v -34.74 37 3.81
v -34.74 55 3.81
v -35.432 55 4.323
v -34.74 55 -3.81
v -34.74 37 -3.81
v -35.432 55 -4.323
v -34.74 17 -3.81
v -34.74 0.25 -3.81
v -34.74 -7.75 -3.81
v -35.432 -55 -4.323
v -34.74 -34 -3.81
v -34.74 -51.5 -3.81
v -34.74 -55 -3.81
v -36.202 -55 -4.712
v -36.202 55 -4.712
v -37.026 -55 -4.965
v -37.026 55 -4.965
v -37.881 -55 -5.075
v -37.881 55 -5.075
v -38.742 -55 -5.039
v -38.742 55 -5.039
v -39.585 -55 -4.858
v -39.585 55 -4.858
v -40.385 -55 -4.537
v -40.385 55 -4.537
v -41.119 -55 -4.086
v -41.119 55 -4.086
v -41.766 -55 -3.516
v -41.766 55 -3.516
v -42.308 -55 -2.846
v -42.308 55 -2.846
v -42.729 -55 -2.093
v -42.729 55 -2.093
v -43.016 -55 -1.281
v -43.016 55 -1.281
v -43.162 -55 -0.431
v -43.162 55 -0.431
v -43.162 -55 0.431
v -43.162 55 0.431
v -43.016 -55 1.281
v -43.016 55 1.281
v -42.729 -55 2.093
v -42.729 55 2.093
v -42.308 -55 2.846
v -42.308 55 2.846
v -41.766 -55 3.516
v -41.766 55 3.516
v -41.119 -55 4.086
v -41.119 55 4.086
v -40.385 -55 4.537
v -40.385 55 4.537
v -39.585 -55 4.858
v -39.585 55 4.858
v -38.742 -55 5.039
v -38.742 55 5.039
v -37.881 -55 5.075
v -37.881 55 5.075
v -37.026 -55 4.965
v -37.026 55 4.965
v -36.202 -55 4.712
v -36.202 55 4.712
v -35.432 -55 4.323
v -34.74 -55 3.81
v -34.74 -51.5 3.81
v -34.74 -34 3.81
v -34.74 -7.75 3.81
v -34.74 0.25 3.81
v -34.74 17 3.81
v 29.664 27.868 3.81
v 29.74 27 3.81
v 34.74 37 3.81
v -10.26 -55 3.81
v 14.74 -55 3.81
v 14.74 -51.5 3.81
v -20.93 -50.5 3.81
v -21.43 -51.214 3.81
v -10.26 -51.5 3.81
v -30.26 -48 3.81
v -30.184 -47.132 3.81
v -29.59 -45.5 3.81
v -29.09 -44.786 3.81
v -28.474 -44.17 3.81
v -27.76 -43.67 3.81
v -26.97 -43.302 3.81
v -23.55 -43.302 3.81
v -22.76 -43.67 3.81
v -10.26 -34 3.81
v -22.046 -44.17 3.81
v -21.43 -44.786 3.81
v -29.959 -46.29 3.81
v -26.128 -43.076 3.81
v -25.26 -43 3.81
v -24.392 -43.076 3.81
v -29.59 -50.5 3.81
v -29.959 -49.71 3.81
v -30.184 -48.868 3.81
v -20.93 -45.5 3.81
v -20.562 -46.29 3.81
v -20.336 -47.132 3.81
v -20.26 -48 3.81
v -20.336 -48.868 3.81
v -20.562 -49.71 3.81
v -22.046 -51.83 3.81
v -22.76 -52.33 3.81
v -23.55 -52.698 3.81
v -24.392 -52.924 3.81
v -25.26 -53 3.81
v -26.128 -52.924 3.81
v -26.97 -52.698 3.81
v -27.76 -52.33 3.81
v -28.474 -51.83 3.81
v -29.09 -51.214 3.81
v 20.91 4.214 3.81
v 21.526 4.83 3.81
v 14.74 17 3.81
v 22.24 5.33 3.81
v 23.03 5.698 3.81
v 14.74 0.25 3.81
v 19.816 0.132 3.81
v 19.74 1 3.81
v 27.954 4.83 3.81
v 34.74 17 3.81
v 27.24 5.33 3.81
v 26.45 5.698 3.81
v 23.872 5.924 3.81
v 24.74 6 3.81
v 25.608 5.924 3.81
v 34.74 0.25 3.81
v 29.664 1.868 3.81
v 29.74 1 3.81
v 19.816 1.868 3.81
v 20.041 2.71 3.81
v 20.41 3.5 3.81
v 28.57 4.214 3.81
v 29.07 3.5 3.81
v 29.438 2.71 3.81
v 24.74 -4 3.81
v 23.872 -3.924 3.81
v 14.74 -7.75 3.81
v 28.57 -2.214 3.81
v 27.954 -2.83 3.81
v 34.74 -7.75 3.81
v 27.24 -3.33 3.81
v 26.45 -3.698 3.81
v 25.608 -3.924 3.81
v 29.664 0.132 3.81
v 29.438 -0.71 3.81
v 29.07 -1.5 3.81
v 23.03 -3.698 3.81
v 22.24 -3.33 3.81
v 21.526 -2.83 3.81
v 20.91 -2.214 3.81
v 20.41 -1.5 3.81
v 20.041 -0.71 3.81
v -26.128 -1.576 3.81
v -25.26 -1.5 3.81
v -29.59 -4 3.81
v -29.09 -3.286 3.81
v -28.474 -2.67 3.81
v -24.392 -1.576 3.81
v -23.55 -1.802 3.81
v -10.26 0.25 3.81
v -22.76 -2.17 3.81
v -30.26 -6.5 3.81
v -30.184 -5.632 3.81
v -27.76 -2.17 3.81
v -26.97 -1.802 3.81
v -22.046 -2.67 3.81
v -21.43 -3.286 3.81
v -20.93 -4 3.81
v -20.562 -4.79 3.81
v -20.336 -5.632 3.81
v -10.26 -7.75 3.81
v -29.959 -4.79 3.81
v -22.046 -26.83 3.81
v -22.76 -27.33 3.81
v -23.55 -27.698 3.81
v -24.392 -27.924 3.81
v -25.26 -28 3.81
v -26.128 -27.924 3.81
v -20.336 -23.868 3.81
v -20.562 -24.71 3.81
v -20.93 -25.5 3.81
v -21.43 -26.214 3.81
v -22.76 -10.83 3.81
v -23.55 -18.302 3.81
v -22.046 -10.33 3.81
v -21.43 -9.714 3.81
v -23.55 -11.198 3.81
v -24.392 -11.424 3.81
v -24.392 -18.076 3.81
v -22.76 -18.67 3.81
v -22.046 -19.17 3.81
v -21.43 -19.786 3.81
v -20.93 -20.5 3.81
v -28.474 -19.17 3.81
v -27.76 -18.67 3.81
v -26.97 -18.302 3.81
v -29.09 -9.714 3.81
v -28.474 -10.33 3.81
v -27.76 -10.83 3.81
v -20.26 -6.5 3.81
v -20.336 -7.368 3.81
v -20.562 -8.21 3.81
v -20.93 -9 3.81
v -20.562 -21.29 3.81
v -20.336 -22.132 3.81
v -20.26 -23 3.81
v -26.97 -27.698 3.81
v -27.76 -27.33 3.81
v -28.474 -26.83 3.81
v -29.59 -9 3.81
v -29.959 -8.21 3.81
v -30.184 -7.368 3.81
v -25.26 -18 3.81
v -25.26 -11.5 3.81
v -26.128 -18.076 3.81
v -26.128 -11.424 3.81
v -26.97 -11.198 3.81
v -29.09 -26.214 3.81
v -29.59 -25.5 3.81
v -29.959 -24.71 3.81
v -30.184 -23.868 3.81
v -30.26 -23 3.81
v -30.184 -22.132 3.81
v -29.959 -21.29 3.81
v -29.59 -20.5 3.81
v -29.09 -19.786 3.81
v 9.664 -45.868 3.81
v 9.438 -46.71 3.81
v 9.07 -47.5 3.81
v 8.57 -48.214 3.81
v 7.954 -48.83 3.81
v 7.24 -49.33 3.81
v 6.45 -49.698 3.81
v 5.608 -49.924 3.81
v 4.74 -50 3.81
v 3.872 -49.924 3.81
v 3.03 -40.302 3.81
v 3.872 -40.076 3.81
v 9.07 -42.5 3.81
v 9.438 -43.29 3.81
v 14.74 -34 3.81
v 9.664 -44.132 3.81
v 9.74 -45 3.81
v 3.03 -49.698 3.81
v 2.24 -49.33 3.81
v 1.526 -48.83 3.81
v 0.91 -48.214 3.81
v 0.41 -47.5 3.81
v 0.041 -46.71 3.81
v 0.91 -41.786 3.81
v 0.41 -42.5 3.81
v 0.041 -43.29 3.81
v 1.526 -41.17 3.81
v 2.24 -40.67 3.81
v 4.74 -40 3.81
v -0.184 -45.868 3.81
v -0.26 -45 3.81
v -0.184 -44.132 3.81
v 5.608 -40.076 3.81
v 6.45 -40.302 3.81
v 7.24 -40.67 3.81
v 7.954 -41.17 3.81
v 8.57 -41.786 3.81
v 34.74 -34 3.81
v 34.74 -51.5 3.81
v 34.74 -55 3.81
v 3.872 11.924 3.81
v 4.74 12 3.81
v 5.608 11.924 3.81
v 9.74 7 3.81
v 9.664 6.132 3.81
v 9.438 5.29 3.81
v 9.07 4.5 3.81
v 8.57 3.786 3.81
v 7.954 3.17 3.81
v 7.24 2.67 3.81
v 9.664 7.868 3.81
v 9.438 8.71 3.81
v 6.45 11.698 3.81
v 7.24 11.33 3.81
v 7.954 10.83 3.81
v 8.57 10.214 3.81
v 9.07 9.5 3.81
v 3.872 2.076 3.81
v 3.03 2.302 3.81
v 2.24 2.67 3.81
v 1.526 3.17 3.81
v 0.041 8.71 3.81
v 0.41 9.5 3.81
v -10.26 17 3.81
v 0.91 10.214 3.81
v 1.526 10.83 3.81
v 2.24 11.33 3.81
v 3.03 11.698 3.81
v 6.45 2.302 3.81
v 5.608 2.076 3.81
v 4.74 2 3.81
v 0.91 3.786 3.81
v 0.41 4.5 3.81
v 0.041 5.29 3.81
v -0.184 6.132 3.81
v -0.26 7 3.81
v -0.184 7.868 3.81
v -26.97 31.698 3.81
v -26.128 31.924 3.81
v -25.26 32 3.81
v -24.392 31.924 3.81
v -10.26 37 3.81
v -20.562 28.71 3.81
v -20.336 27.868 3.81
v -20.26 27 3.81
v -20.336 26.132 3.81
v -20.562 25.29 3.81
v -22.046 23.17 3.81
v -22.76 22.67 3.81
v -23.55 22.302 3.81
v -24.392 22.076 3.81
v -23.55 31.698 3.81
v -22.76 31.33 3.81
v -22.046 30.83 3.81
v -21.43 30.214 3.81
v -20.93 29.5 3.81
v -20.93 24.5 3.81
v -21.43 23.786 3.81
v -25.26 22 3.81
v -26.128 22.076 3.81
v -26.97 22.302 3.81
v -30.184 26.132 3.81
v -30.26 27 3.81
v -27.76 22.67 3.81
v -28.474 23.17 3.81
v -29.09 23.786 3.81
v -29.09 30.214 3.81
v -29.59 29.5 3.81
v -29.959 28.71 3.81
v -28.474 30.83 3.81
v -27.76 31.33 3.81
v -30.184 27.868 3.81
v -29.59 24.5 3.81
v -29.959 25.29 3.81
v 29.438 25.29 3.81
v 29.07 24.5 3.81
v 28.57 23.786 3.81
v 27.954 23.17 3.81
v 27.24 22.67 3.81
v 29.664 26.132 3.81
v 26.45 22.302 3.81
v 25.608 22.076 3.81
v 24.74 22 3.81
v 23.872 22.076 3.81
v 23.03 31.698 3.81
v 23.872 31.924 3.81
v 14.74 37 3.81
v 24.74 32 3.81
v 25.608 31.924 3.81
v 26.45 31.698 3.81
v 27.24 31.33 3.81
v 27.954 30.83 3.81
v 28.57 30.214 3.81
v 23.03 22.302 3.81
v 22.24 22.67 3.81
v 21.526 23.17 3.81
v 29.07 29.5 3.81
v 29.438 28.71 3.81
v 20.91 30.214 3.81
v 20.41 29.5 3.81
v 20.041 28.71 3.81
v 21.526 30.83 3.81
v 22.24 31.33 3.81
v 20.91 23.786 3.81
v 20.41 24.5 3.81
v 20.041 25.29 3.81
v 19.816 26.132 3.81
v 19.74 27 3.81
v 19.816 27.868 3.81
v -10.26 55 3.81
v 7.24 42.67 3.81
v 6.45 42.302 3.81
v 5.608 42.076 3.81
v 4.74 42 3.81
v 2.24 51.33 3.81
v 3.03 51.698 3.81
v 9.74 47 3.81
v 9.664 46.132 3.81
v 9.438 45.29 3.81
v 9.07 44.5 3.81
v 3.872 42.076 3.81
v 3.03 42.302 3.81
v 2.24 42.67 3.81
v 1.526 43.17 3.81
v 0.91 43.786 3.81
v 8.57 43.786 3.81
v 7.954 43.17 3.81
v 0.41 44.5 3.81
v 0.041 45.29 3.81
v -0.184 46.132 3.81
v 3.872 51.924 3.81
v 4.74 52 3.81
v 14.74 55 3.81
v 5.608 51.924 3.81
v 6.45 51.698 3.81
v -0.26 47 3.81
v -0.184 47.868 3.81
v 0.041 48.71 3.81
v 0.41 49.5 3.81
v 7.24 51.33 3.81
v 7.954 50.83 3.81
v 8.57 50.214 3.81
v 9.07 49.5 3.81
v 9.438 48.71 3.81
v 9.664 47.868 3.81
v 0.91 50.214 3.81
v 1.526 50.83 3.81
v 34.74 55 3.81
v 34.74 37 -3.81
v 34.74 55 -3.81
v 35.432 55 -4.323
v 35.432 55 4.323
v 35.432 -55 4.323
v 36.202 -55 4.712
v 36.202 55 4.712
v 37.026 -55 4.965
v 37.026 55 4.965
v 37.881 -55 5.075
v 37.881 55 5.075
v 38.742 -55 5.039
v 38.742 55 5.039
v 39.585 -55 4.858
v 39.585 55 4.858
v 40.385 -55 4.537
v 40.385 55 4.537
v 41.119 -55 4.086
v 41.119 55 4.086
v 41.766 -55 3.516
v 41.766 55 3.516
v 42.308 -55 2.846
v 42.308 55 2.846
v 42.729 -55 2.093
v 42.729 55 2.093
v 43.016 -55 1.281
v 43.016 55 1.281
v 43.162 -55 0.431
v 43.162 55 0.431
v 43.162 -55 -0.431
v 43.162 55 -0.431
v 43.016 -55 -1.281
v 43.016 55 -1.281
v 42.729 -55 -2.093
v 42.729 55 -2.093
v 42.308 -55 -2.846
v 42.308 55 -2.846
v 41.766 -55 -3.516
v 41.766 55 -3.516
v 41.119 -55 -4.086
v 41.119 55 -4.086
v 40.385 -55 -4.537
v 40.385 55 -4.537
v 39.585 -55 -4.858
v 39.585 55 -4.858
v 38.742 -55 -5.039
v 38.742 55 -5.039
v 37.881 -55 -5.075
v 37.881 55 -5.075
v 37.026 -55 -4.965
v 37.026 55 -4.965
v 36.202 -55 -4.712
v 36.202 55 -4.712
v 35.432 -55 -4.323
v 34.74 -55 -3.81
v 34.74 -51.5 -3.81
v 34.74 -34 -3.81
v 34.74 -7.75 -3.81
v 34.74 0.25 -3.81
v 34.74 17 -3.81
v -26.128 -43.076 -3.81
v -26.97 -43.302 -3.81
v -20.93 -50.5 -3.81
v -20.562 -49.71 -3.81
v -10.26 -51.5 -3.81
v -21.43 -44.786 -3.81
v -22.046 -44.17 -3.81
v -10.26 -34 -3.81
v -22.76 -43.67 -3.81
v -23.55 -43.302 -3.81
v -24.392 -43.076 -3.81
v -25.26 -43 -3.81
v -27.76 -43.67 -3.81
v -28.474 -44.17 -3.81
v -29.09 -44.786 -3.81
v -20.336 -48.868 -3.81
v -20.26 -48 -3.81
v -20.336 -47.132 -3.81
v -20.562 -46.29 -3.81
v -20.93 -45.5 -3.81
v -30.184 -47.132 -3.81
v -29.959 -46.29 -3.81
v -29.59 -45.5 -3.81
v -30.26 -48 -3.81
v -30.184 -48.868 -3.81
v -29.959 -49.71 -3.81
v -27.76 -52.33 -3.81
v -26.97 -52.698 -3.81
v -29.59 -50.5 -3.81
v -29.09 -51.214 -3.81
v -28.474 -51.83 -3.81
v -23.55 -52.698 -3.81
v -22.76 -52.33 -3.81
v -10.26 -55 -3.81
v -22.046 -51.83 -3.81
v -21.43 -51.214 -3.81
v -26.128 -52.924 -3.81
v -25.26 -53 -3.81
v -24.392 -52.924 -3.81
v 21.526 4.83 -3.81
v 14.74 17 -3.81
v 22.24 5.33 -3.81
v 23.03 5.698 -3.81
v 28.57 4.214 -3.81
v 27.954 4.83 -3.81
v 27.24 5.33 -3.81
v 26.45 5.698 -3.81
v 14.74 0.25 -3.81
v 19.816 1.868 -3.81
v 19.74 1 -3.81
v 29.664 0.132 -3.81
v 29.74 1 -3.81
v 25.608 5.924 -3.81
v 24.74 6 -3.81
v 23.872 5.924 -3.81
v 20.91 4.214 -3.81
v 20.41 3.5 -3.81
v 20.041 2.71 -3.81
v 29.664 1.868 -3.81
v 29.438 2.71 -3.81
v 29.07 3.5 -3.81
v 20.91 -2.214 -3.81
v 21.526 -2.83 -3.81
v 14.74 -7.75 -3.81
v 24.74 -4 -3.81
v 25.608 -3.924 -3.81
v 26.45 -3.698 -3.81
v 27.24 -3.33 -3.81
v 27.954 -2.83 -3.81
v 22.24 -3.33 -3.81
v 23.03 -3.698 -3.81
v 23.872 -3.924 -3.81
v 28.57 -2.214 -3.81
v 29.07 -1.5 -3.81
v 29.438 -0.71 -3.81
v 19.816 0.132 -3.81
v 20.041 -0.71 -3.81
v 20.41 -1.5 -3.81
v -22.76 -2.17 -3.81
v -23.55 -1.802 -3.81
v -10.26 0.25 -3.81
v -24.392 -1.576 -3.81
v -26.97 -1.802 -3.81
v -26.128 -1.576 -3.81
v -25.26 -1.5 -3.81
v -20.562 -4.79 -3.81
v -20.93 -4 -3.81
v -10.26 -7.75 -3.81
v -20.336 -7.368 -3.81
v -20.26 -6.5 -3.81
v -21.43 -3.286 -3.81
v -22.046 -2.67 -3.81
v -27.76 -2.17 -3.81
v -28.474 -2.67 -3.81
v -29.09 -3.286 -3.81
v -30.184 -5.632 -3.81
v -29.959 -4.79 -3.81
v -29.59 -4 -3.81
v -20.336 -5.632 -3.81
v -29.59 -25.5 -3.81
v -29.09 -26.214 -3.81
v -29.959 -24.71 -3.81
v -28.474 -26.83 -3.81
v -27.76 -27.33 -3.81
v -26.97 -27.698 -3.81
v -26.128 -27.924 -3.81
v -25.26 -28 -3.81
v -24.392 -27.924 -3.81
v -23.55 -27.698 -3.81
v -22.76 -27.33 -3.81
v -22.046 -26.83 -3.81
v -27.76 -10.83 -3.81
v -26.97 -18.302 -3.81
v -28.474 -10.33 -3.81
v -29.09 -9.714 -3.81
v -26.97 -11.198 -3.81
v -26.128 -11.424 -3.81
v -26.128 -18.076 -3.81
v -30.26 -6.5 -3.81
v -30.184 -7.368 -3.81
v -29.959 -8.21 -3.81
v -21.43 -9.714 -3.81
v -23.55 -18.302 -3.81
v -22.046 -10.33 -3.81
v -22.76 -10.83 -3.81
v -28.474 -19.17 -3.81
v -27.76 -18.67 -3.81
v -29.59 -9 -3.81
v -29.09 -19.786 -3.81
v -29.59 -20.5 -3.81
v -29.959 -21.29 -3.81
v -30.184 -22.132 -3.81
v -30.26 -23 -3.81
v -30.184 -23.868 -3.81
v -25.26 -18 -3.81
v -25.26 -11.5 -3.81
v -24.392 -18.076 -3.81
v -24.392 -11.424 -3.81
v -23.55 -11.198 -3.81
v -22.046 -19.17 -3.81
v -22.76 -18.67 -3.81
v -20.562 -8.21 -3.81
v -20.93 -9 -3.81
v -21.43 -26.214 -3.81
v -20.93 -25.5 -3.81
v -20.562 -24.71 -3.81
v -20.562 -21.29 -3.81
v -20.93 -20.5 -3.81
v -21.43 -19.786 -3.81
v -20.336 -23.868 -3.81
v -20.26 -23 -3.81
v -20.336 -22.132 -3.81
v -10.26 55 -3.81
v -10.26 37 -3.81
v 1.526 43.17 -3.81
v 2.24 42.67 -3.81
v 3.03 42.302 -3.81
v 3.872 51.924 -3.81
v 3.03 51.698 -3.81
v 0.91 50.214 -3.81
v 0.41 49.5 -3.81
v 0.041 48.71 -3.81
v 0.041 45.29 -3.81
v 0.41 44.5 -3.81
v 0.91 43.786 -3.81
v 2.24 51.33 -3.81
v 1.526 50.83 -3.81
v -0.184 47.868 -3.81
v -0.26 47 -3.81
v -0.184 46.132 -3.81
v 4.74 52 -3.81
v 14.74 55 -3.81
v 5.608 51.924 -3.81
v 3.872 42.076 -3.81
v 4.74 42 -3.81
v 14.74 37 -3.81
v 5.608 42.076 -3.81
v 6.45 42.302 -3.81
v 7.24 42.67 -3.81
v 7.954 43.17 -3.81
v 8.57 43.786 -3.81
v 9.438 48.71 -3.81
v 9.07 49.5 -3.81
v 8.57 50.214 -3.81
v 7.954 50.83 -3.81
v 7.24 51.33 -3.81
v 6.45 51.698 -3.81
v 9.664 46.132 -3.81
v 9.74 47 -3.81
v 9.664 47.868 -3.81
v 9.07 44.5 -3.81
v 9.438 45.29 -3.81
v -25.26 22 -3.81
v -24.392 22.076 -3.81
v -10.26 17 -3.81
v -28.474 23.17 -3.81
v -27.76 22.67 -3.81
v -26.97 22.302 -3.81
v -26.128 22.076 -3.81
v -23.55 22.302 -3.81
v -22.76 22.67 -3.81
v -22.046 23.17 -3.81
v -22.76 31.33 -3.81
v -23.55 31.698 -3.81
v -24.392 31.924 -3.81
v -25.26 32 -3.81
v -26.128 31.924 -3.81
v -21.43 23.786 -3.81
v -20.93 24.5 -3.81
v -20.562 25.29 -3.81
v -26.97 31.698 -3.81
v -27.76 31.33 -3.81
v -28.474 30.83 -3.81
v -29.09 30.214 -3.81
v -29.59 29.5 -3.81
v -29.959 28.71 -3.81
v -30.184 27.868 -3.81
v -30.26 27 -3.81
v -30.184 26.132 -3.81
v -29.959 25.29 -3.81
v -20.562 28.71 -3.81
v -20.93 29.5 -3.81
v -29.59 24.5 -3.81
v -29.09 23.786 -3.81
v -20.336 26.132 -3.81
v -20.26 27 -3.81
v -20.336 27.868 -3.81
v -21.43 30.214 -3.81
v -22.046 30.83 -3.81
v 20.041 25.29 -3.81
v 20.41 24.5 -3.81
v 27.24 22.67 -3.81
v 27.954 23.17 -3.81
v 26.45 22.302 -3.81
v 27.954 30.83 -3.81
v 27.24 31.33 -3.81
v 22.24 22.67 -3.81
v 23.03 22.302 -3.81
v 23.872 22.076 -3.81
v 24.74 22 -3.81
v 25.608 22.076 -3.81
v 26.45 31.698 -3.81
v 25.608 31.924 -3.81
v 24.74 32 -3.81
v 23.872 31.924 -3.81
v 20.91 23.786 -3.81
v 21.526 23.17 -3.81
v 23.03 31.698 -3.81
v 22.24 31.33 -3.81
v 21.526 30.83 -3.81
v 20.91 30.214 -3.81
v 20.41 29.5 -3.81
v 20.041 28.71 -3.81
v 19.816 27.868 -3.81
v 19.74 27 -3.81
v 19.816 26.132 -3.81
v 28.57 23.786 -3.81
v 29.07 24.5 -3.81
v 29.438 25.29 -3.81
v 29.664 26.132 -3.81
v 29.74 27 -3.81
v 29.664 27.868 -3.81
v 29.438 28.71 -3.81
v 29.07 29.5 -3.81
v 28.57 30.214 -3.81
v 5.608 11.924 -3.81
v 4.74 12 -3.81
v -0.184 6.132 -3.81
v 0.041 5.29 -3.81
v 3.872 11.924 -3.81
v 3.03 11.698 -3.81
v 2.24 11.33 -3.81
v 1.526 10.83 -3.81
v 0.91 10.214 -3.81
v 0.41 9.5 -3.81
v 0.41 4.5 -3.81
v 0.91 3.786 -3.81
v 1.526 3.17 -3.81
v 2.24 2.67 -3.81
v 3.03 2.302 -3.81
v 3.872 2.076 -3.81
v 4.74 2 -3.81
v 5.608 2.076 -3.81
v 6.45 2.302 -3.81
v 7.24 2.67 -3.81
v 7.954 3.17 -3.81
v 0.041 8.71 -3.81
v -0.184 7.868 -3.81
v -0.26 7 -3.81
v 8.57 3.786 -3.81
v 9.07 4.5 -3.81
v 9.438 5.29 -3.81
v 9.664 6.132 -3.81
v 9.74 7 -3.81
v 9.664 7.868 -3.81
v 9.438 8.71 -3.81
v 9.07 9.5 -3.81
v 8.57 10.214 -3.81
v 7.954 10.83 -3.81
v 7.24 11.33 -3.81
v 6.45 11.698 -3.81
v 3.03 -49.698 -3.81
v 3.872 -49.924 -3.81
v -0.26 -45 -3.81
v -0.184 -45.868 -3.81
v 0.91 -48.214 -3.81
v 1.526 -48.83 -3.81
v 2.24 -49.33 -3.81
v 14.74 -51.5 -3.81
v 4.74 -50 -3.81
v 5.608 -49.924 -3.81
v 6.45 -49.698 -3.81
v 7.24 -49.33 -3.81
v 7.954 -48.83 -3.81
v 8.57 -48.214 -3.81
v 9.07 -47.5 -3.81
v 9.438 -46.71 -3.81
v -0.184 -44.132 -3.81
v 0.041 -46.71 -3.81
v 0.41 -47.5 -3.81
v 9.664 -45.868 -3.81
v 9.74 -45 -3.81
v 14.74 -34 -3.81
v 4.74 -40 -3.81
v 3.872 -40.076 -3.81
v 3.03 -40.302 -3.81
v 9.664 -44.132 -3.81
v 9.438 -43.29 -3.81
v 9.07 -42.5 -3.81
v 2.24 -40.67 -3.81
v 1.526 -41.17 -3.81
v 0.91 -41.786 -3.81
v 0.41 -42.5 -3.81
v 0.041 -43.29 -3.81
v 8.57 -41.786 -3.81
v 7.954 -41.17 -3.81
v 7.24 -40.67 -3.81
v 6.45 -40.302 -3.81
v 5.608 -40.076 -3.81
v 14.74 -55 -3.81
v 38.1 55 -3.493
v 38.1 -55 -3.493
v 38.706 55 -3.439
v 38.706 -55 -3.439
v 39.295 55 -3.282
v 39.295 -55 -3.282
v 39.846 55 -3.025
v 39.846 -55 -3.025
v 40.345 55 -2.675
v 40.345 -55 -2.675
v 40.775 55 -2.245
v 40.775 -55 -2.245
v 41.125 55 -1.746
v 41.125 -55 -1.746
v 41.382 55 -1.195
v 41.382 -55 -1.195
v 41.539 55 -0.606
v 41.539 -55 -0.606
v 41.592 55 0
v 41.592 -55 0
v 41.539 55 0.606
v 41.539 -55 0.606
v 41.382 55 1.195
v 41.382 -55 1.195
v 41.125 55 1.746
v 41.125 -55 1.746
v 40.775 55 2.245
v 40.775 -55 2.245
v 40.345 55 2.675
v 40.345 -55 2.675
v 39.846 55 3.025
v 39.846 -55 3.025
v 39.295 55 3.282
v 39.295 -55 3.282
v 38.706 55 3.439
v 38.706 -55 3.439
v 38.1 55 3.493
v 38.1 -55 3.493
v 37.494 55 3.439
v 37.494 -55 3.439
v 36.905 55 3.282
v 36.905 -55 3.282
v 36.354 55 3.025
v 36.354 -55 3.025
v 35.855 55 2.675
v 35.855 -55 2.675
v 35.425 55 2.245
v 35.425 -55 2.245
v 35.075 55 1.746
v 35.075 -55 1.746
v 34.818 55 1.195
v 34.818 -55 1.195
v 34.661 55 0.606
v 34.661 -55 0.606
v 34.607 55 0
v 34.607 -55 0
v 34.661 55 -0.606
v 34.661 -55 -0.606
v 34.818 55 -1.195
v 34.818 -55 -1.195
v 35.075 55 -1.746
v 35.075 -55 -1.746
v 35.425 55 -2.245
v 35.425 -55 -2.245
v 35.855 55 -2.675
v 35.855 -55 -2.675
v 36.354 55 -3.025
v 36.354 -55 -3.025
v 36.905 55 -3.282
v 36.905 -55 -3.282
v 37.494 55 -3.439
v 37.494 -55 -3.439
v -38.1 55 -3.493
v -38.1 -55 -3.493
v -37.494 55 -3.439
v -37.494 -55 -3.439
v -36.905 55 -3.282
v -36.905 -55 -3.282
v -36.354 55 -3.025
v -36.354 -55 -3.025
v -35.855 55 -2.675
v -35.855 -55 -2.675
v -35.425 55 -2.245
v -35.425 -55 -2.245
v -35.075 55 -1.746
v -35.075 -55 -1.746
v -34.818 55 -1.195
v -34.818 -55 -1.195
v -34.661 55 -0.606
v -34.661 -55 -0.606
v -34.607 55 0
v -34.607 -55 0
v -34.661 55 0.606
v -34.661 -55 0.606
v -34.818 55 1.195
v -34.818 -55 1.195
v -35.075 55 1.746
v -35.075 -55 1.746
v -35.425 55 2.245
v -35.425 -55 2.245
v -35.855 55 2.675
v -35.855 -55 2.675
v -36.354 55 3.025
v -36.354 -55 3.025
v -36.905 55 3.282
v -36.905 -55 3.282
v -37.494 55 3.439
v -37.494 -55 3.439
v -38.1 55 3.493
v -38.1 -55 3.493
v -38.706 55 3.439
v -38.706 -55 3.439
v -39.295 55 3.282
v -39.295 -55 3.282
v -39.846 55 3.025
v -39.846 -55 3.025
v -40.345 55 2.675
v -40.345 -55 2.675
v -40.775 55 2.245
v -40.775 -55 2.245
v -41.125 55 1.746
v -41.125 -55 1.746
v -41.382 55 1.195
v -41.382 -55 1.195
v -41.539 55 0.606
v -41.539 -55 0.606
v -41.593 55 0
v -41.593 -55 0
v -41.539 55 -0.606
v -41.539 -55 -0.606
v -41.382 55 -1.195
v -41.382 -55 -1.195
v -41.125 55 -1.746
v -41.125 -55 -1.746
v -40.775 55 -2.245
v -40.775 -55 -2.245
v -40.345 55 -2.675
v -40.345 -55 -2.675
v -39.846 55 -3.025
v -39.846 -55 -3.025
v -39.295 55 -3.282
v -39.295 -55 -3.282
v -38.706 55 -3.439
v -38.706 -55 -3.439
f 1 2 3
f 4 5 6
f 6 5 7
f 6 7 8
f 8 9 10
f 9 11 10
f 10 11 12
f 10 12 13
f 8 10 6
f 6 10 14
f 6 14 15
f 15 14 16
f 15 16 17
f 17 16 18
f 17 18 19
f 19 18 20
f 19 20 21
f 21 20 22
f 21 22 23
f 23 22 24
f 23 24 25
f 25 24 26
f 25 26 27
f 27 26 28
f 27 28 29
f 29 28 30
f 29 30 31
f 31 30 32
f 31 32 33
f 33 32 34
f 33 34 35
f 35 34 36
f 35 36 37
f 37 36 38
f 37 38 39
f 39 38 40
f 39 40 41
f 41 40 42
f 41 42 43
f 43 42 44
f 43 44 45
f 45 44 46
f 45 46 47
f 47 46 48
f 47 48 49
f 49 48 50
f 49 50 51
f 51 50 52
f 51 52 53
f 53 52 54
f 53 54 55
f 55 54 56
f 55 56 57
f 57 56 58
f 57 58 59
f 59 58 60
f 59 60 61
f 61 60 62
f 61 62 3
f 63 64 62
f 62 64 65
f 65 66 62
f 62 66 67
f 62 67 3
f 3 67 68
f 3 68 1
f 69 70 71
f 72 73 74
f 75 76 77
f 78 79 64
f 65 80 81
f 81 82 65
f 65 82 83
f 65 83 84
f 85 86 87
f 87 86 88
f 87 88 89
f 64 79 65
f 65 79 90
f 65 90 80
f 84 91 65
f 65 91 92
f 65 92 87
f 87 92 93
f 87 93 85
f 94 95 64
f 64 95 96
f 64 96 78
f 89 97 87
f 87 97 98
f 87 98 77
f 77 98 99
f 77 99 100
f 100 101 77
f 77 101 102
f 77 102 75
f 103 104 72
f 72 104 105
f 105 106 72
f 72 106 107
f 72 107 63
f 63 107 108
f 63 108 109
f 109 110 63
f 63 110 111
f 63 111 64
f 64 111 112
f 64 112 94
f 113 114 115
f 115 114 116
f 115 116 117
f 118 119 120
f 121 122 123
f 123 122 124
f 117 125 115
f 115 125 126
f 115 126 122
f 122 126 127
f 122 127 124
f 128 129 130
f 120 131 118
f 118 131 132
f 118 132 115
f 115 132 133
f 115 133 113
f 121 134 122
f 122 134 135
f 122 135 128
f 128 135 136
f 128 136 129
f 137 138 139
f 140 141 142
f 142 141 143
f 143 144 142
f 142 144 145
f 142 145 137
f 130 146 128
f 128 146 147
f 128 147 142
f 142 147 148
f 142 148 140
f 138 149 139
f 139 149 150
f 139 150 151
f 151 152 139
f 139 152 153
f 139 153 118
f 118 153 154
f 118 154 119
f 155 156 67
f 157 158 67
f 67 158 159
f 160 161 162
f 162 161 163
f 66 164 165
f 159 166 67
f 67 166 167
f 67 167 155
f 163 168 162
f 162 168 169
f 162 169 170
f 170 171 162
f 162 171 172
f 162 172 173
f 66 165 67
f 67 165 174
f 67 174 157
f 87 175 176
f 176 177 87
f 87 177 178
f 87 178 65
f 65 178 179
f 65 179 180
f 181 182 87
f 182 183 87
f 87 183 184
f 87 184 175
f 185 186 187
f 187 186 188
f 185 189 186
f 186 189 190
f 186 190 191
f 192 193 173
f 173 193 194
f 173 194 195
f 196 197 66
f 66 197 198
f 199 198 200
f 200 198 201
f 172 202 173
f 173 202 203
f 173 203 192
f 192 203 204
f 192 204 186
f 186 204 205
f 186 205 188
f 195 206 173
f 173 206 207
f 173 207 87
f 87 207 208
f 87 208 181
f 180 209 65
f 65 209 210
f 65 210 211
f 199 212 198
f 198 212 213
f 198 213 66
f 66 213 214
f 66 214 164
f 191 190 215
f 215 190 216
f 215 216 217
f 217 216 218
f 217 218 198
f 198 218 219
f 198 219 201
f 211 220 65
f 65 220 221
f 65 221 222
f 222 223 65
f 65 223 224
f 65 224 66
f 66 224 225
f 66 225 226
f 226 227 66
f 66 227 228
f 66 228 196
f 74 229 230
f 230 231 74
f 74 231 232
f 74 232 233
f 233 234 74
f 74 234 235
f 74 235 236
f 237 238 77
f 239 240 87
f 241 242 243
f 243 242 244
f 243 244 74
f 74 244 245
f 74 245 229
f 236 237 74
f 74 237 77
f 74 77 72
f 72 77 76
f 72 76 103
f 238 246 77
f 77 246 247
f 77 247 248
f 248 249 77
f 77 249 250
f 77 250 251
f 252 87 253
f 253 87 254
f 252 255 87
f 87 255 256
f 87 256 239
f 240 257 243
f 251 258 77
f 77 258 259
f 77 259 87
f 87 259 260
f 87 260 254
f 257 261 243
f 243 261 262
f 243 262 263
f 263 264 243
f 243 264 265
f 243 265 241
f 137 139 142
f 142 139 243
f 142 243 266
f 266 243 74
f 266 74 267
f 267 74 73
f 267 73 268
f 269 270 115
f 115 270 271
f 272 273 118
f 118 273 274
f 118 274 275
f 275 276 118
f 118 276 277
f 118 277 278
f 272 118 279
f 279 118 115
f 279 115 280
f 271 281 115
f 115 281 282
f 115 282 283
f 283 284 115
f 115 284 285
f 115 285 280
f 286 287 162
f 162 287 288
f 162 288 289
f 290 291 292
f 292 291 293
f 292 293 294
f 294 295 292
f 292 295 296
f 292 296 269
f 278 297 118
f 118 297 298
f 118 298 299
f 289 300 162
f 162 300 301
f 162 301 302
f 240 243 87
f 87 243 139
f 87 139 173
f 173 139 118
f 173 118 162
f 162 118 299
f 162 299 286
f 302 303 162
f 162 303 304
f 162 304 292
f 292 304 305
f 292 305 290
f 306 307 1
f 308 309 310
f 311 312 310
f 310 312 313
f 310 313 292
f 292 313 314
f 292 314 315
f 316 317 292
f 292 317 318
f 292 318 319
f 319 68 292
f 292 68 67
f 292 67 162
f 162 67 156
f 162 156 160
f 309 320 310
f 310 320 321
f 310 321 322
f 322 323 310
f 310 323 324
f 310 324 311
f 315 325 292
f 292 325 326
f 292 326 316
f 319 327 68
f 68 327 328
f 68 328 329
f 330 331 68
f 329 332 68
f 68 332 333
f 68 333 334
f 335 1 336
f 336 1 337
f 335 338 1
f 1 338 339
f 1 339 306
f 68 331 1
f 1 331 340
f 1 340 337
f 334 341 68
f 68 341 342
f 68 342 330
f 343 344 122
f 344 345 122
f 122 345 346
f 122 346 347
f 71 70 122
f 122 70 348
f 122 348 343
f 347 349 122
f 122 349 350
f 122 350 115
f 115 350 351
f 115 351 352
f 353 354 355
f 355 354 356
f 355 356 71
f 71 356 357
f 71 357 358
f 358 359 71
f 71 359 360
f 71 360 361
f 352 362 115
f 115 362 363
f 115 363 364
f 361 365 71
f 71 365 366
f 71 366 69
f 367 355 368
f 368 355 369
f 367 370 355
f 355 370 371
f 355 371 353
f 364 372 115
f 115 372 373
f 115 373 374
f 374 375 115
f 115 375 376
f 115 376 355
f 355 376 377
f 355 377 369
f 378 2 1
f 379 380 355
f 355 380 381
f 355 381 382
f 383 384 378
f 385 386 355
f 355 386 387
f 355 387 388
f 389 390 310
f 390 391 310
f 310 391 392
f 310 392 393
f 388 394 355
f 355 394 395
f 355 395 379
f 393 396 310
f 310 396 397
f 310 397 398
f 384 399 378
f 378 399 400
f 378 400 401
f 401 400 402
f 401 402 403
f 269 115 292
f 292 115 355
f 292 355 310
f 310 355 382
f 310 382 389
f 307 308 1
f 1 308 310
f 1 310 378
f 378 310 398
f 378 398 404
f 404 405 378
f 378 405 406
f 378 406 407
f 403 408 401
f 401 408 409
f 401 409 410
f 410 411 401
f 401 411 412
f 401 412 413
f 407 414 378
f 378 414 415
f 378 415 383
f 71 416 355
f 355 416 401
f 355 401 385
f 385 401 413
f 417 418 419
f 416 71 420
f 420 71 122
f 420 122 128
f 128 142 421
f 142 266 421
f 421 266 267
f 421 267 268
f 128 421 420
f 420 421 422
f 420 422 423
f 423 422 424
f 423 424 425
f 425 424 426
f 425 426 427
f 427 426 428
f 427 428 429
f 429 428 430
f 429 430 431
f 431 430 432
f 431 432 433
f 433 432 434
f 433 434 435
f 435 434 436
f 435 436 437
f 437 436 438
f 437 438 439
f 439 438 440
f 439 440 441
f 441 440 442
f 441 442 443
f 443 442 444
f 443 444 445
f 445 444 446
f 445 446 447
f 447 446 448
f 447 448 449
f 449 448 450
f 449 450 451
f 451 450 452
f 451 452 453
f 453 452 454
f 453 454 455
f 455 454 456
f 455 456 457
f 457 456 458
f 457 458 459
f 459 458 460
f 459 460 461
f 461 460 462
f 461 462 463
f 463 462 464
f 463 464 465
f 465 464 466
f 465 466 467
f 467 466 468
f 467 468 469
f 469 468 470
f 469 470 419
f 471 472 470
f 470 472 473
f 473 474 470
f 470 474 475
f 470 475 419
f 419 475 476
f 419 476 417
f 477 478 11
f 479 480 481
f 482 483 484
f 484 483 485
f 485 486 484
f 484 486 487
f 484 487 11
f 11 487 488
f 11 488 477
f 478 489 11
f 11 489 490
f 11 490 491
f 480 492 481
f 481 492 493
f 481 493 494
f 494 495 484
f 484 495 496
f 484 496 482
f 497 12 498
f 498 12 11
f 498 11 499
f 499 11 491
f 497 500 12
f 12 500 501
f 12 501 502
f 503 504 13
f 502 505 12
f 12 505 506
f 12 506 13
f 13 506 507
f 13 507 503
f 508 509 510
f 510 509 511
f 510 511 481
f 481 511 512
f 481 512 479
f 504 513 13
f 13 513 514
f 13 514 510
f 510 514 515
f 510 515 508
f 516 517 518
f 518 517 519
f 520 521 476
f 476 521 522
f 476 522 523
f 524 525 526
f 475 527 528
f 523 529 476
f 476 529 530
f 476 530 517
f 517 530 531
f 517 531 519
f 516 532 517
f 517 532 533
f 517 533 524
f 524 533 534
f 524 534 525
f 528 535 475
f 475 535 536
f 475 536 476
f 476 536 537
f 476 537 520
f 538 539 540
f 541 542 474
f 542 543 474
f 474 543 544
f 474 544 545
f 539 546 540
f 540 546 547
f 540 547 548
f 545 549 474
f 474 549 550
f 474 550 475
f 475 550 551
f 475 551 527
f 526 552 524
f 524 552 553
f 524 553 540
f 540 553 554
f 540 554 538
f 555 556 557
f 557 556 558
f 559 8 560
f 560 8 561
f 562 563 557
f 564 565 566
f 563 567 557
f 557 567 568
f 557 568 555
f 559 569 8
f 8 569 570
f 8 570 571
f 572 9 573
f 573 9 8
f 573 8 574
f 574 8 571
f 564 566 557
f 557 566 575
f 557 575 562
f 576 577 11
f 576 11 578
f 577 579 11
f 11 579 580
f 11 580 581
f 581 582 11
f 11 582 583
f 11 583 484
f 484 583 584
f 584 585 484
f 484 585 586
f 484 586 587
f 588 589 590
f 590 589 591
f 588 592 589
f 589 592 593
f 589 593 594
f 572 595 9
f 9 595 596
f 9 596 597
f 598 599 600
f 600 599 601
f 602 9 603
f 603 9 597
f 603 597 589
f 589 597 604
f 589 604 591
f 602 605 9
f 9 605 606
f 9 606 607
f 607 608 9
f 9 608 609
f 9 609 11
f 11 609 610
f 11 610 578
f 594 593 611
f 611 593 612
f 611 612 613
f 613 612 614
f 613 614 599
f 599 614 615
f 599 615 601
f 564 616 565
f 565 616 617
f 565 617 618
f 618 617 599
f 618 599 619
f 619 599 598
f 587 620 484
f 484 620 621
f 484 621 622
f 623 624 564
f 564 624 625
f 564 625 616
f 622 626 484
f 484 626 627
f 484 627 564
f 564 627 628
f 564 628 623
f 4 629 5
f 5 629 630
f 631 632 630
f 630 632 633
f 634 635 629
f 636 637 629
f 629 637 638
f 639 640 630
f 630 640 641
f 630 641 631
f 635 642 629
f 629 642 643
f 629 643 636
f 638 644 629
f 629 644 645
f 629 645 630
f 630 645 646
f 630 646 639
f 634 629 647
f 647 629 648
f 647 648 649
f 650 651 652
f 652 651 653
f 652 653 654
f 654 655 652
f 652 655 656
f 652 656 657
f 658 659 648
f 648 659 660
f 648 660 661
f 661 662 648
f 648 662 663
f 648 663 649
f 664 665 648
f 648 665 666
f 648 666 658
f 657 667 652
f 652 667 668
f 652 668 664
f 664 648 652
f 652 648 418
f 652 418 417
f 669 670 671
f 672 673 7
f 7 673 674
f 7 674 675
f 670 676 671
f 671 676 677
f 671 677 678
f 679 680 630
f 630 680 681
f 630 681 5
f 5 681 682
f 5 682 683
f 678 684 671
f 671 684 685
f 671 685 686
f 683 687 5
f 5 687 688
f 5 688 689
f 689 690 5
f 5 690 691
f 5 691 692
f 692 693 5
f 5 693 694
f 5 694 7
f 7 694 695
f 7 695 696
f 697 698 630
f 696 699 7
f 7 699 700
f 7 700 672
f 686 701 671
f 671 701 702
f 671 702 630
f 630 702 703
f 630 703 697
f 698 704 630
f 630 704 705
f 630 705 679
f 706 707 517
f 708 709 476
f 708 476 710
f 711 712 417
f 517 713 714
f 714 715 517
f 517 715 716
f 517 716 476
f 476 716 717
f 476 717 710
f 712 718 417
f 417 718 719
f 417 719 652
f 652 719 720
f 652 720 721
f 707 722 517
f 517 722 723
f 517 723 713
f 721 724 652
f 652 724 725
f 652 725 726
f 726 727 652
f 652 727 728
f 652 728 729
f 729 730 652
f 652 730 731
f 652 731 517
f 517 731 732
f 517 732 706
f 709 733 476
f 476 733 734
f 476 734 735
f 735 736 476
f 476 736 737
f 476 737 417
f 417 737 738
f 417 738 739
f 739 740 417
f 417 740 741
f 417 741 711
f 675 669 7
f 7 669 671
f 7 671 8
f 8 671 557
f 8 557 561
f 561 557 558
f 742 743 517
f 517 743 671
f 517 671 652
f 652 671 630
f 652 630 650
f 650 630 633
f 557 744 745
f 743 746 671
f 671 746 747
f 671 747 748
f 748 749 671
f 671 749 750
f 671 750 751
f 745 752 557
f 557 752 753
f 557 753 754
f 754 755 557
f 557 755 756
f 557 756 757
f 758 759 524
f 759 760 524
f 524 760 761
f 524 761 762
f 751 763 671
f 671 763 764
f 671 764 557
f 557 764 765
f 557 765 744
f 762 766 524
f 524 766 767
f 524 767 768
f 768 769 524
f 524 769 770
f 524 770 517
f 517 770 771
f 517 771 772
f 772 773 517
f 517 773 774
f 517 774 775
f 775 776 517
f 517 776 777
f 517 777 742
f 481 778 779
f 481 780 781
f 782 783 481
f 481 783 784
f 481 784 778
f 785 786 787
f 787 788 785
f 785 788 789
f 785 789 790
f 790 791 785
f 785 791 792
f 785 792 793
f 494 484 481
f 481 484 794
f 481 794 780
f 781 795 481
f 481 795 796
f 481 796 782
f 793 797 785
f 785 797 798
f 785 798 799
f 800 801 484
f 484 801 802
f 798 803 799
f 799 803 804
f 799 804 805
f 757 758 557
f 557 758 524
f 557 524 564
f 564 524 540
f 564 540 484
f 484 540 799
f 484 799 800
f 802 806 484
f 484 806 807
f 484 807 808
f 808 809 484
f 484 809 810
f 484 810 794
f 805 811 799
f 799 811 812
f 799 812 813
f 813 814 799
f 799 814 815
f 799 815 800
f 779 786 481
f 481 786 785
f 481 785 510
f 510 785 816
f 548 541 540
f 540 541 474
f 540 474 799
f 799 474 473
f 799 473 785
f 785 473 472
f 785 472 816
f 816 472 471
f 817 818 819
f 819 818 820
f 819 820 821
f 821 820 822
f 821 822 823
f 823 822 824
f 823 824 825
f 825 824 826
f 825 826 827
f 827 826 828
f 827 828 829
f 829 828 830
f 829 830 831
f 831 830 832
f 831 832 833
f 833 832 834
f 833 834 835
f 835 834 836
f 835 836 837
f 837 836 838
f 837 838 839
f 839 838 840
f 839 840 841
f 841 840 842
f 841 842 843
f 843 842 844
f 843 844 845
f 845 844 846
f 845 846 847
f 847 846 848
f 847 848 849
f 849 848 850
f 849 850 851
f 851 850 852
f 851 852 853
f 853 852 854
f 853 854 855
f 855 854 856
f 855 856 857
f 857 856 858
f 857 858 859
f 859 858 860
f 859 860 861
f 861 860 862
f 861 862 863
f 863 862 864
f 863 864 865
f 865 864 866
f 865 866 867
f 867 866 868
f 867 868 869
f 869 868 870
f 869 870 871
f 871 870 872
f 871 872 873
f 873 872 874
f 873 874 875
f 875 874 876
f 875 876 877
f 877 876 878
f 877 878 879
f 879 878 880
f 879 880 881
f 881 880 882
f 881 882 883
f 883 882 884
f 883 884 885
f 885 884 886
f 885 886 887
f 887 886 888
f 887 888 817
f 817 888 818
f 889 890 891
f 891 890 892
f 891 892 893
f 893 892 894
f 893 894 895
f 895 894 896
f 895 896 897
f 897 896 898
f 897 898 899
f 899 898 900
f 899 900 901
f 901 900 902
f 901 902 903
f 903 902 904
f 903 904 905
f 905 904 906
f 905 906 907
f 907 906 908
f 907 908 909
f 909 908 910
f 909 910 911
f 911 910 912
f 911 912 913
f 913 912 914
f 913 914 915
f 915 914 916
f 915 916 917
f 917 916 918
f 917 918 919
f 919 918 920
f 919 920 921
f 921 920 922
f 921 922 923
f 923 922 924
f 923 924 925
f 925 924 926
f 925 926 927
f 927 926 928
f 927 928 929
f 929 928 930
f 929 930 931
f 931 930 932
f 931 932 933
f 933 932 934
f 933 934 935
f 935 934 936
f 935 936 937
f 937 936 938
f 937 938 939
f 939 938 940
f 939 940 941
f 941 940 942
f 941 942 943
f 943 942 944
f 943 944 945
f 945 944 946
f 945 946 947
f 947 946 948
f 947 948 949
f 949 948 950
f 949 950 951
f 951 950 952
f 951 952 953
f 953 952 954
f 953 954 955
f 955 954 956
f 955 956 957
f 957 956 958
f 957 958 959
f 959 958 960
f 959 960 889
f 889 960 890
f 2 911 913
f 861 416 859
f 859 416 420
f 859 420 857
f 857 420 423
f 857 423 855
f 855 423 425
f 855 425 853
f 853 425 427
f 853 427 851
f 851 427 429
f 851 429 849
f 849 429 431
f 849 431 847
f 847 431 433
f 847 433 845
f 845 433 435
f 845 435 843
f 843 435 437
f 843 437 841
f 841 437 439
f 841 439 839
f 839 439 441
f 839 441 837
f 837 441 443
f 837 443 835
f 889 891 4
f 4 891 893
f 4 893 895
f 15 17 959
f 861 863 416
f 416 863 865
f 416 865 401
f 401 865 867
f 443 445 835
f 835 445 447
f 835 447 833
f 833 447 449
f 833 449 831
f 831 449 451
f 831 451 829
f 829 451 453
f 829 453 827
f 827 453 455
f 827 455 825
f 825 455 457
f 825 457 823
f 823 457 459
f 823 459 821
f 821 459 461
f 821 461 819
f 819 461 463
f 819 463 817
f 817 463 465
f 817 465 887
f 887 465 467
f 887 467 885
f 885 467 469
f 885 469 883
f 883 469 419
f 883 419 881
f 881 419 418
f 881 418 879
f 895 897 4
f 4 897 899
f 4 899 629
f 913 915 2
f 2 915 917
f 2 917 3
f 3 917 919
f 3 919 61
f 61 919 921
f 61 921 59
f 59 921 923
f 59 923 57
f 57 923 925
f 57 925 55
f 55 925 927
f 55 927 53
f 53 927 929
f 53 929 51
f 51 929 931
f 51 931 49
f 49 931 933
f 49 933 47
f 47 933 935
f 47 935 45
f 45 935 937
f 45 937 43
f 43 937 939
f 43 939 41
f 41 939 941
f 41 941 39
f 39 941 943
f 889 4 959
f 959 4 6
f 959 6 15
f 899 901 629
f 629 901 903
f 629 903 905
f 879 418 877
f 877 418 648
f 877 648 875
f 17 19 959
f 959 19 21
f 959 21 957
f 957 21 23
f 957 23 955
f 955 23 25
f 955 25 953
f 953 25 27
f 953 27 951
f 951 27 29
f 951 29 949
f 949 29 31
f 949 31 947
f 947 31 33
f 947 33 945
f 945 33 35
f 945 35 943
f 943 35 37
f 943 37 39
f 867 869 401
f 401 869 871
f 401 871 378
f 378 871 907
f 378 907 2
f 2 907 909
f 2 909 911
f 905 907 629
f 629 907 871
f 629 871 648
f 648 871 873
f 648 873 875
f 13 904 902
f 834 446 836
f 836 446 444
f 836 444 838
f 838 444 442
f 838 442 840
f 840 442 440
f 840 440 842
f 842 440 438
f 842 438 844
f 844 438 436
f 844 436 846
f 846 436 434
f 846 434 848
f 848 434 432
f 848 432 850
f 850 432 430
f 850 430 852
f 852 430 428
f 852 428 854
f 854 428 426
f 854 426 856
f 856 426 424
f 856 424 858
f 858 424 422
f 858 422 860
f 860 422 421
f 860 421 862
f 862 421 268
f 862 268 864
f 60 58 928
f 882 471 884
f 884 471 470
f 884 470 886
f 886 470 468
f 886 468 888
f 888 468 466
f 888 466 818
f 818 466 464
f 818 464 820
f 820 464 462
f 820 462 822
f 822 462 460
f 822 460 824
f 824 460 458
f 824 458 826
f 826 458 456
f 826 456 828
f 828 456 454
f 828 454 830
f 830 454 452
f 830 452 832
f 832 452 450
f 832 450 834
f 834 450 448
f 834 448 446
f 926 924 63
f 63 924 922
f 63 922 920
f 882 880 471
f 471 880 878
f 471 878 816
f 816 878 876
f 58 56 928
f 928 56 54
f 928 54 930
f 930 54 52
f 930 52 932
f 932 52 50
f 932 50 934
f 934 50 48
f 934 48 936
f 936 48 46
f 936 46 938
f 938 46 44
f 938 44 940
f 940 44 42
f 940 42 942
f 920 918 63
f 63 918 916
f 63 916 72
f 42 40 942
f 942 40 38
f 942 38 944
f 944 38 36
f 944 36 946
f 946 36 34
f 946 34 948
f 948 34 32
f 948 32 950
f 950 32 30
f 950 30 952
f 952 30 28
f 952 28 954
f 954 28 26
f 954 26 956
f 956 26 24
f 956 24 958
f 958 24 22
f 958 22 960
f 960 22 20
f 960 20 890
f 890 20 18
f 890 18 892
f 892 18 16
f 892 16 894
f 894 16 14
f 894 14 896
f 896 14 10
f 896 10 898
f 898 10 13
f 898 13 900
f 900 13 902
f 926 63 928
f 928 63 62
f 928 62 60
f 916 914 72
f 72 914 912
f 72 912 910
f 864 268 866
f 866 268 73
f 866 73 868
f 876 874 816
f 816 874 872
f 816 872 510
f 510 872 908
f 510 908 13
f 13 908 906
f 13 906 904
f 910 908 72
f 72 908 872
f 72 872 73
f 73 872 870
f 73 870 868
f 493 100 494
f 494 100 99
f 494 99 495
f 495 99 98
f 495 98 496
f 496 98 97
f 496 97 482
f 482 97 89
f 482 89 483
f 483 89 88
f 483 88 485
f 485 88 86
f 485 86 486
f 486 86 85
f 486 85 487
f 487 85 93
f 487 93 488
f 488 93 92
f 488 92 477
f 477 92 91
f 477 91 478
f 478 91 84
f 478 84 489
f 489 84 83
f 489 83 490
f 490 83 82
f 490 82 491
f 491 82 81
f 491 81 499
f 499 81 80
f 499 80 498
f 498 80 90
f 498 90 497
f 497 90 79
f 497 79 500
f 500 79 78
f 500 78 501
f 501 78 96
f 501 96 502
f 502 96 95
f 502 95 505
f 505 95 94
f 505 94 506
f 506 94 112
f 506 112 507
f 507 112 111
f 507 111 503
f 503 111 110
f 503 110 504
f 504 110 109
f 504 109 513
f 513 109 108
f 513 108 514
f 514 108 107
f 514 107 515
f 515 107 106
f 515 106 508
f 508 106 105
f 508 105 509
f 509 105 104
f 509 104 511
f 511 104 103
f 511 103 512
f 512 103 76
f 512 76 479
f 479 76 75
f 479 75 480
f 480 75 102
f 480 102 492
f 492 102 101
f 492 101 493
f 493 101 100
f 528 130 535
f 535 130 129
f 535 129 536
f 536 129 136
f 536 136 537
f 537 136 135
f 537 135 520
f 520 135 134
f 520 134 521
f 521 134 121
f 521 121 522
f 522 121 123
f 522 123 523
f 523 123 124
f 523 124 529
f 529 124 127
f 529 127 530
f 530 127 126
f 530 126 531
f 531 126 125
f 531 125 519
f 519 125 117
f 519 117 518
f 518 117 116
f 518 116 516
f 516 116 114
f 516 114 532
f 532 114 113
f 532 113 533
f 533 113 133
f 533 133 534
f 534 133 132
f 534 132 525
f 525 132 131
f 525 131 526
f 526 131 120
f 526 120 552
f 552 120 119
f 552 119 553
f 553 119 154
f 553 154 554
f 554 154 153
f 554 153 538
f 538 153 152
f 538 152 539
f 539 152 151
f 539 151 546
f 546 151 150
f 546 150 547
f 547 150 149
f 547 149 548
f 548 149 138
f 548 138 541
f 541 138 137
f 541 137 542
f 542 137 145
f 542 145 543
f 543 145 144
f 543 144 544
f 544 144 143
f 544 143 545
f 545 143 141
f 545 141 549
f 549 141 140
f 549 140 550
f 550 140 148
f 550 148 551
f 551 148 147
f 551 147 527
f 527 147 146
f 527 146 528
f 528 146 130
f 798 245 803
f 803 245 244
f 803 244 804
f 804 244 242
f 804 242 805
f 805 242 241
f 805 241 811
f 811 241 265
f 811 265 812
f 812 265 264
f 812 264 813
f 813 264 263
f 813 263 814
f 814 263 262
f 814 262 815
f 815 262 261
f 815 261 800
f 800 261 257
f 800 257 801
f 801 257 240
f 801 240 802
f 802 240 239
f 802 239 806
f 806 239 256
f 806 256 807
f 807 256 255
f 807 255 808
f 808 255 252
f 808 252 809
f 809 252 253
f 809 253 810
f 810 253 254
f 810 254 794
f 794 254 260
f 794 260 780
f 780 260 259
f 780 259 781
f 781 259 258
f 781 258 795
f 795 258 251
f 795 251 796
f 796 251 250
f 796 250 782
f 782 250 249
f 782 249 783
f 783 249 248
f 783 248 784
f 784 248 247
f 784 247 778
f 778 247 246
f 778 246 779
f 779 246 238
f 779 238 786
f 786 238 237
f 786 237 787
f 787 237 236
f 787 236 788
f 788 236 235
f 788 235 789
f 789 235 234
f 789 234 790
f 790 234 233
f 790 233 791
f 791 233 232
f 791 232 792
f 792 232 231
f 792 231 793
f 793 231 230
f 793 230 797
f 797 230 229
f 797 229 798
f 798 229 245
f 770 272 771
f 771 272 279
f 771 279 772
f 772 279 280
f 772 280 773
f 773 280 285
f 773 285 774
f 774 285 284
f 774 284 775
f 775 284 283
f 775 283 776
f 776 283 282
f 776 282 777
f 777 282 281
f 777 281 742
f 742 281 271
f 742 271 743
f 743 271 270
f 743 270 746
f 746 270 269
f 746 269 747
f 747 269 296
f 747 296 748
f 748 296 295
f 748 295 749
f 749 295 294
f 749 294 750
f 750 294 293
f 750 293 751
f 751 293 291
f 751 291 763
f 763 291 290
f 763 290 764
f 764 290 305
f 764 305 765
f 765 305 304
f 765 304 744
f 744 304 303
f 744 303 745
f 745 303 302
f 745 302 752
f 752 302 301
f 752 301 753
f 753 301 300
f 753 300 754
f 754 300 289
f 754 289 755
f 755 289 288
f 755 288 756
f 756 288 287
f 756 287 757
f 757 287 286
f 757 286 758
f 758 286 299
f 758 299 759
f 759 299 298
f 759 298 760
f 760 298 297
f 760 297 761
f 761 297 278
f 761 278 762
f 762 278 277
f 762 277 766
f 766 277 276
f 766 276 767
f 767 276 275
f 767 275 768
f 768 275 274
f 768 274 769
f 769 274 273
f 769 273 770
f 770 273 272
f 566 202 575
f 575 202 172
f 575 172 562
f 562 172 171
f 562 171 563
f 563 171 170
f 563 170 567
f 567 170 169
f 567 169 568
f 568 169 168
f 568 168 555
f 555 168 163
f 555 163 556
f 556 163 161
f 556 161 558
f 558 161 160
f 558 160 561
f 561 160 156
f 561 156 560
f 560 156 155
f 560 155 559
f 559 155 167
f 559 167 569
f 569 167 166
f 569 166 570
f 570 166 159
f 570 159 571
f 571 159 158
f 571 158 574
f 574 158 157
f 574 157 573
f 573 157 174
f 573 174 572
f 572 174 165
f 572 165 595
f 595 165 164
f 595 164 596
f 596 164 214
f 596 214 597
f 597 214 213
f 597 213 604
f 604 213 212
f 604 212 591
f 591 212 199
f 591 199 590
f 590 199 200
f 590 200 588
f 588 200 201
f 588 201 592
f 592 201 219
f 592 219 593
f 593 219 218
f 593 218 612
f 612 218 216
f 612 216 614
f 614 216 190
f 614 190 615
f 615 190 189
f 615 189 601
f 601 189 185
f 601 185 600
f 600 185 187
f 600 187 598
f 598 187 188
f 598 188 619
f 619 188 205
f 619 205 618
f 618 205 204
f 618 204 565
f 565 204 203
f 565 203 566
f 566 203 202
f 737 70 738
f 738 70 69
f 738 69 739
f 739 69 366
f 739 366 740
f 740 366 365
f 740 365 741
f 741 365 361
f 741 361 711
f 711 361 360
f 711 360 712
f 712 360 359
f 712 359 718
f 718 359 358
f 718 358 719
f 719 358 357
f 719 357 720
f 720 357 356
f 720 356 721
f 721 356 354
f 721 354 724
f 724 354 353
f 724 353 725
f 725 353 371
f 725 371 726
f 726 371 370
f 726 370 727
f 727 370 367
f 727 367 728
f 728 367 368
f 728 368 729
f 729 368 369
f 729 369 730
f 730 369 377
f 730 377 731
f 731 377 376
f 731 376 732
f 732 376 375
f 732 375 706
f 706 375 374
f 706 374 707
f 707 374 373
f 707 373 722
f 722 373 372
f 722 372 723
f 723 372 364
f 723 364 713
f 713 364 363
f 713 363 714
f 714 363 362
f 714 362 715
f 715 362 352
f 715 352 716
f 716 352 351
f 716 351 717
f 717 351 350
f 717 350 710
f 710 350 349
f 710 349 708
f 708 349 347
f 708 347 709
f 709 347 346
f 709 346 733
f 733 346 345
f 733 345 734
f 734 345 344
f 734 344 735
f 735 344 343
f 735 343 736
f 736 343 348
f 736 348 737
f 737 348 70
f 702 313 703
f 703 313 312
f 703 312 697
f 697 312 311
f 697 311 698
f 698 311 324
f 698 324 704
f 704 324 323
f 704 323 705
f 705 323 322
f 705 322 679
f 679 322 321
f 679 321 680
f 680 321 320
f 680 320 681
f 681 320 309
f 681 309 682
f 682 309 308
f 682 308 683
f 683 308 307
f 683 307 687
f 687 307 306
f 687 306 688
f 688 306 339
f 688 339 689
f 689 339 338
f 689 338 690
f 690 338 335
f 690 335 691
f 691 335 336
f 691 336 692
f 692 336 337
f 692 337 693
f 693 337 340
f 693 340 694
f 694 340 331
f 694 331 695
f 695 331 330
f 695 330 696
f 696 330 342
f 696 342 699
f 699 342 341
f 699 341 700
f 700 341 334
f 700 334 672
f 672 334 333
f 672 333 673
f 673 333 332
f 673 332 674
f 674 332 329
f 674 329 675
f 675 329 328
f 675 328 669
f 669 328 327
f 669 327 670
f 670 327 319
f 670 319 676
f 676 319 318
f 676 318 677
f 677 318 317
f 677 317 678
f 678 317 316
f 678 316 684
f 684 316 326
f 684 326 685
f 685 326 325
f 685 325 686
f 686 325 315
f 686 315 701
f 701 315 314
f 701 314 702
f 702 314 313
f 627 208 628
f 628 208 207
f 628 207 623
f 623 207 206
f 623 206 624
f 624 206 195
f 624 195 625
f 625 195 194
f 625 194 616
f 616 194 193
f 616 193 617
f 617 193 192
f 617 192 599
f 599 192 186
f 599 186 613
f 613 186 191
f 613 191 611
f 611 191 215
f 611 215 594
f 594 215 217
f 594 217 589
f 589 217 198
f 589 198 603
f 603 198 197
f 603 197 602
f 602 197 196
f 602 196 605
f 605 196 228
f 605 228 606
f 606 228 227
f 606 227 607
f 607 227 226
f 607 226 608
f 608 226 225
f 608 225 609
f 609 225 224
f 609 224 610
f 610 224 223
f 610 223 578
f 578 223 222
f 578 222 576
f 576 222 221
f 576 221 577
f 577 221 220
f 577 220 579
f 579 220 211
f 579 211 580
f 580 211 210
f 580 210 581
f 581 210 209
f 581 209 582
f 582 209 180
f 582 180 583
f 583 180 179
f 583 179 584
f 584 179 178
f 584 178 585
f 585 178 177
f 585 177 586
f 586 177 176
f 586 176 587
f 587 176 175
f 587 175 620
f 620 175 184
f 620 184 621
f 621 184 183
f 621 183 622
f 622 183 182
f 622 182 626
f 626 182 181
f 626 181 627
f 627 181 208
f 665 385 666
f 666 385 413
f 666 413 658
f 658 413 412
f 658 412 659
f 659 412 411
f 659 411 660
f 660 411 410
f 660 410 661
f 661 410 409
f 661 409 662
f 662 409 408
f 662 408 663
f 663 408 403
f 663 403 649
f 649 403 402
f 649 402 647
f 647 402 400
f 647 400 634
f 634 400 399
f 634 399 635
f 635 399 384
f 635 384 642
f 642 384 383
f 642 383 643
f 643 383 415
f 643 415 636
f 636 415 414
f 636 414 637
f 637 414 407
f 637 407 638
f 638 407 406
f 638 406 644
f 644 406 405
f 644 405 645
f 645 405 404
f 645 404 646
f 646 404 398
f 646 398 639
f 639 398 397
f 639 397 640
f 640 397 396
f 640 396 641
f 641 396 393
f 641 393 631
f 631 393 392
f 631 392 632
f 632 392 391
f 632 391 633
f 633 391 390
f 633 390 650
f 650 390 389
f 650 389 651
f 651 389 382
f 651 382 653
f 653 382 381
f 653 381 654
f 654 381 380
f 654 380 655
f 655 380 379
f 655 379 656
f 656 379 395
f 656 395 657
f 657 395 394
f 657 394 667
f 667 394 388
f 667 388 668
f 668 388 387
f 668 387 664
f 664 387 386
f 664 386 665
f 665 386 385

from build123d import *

# Parameters (mm, degrees)
BOSS_EXTRUDE1_DEPTH = 55
SKETCH5_R           = 5
CUT_EXTRUDE2_DEPTH  = 9.89


with BuildPart() as part:
    # Sketch1 → Boss-Extrude1 (new body, symmetric)
    with BuildSketch(Plane(origin=(0, 0, 0), x_dir=(1, 0, 0), z_dir=(0, 1, 0))):
        with BuildLine():
            Line((-38.1, -3.4925), (-38.1, -3.81))
            Line((-38.1, -3.81), (-34.739896, -3.81))
            ThreePointArc((-34.739896, -3.81), (-33.469896, -2.090104), (-33.02, 0))
            ThreePointArc((-33.02, 0), (-33.469896, 2.090104), (-34.739896, 3.81))
            Line((-34.739896, 3.81), (-38.1, 3.81))
            Line((-38.1, 3.81), (-38.1, 3.4925))
            ThreePointArc((-38.1, 3.4925), (-35.63043, 2.46957), (-34.6075, 0))
            ThreePointArc((-34.6075, 0), (-35.63043, -2.46957), (-38.1, -3.4925))
        make_face()
        with BuildLine():
            Line((-34.739896, -3.81), (-38.1, -3.81))
            Line((-38.1, -3.81), (-38.1, -3.4925))
            ThreePointArc((-38.1, -3.4925), (-41.5925, 0), (-38.1, 3.4925))
            Line((-38.1, 3.4925), (-38.1, 3.81))
            Line((-38.1, 3.81), (-34.739896, 3.81))
            ThreePointArc((-34.739896, 3.81), (-43.18, 0), (-34.739896, -3.81))
        make_face()
        with BuildLine():
            ThreePointArc((-33.02, 0), (-33.469896, -2.090104), (-34.739896, -3.81))
            Line((-34.739896, -3.81), (34.739896, -3.81))
            ThreePointArc((34.739896, -3.81), (33.02, 0), (34.739896, 3.81))
            Line((34.739896, 3.81), (-34.739896, 3.81))
            ThreePointArc((-34.739896, 3.81), (-33.469896, 2.090104), (-33.02, 0))
        make_face()
        with BuildLine():
            ThreePointArc((34.739896, 3.81), (33.02, 0), (34.739896, -3.81))
            Line((34.739896, -3.81), (38.1, -3.81))
            Line((38.1, -3.81), (38.1, -3.4925))
            ThreePointArc((38.1, -3.4925), (34.6075, 0), (38.1, 3.4925))
            Line((38.1, 3.4925), (38.1, 3.81))
            Line((38.1, 3.81), (34.739896, 3.81))
        make_face()
        with BuildLine():
            Line((38.1, -3.81), (34.739896, -3.81))
            ThreePointArc((34.739896, -3.81), (40.190104, -4.630104), (43.18, 0))
            ThreePointArc((43.18, 0), (40.190104, 4.630104), (34.739896, 3.81))
            Line((34.739896, 3.81), (38.1, 3.81))
            Line((38.1, 3.81), (38.1, 3.4925))
            ThreePointArc((38.1, 3.4925), (40.56957, 2.46957), (41.5925, 0))
            ThreePointArc((41.5925, 0), (40.56957, -2.46957), (38.1, -3.4925))
            Line((38.1, -3.4925), (38.1, -3.81))
        make_face()
    extrude(amount=BOSS_EXTRUDE1_DEPTH, both=True)

    # Sketch5 → Cut-Extrude2 (cut, through all)
    with BuildSketch(Plane.XY.offset(3.81)):
        with Locations((-25.260104, -48)):
            Circle(SKETCH5_R)
        with Locations((-25.260104, -23)):
            Circle(SKETCH5_R)
        with Locations((4.739896, 47)):
            Circle(SKETCH5_R)
        with Locations((4.739896, -45)):
            Circle(SKETCH5_R)
        with Locations((24.739896, 1)):
            Circle(SKETCH5_R)
        with Locations((-25.260104, 27)):
            Circle(SKETCH5_R)
        with Locations((24.739896, 27)):
            Circle(SKETCH5_R)
        with Locations((-25.260104, -6.5)):
            Circle(SKETCH5_R)
        with Locations((4.739896, 7)):
            Circle(SKETCH5_R)
    extrude(amount=-CUT_EXTRUDE2_DEPTH, mode=Mode.SUBTRACT)


solid = part.part
